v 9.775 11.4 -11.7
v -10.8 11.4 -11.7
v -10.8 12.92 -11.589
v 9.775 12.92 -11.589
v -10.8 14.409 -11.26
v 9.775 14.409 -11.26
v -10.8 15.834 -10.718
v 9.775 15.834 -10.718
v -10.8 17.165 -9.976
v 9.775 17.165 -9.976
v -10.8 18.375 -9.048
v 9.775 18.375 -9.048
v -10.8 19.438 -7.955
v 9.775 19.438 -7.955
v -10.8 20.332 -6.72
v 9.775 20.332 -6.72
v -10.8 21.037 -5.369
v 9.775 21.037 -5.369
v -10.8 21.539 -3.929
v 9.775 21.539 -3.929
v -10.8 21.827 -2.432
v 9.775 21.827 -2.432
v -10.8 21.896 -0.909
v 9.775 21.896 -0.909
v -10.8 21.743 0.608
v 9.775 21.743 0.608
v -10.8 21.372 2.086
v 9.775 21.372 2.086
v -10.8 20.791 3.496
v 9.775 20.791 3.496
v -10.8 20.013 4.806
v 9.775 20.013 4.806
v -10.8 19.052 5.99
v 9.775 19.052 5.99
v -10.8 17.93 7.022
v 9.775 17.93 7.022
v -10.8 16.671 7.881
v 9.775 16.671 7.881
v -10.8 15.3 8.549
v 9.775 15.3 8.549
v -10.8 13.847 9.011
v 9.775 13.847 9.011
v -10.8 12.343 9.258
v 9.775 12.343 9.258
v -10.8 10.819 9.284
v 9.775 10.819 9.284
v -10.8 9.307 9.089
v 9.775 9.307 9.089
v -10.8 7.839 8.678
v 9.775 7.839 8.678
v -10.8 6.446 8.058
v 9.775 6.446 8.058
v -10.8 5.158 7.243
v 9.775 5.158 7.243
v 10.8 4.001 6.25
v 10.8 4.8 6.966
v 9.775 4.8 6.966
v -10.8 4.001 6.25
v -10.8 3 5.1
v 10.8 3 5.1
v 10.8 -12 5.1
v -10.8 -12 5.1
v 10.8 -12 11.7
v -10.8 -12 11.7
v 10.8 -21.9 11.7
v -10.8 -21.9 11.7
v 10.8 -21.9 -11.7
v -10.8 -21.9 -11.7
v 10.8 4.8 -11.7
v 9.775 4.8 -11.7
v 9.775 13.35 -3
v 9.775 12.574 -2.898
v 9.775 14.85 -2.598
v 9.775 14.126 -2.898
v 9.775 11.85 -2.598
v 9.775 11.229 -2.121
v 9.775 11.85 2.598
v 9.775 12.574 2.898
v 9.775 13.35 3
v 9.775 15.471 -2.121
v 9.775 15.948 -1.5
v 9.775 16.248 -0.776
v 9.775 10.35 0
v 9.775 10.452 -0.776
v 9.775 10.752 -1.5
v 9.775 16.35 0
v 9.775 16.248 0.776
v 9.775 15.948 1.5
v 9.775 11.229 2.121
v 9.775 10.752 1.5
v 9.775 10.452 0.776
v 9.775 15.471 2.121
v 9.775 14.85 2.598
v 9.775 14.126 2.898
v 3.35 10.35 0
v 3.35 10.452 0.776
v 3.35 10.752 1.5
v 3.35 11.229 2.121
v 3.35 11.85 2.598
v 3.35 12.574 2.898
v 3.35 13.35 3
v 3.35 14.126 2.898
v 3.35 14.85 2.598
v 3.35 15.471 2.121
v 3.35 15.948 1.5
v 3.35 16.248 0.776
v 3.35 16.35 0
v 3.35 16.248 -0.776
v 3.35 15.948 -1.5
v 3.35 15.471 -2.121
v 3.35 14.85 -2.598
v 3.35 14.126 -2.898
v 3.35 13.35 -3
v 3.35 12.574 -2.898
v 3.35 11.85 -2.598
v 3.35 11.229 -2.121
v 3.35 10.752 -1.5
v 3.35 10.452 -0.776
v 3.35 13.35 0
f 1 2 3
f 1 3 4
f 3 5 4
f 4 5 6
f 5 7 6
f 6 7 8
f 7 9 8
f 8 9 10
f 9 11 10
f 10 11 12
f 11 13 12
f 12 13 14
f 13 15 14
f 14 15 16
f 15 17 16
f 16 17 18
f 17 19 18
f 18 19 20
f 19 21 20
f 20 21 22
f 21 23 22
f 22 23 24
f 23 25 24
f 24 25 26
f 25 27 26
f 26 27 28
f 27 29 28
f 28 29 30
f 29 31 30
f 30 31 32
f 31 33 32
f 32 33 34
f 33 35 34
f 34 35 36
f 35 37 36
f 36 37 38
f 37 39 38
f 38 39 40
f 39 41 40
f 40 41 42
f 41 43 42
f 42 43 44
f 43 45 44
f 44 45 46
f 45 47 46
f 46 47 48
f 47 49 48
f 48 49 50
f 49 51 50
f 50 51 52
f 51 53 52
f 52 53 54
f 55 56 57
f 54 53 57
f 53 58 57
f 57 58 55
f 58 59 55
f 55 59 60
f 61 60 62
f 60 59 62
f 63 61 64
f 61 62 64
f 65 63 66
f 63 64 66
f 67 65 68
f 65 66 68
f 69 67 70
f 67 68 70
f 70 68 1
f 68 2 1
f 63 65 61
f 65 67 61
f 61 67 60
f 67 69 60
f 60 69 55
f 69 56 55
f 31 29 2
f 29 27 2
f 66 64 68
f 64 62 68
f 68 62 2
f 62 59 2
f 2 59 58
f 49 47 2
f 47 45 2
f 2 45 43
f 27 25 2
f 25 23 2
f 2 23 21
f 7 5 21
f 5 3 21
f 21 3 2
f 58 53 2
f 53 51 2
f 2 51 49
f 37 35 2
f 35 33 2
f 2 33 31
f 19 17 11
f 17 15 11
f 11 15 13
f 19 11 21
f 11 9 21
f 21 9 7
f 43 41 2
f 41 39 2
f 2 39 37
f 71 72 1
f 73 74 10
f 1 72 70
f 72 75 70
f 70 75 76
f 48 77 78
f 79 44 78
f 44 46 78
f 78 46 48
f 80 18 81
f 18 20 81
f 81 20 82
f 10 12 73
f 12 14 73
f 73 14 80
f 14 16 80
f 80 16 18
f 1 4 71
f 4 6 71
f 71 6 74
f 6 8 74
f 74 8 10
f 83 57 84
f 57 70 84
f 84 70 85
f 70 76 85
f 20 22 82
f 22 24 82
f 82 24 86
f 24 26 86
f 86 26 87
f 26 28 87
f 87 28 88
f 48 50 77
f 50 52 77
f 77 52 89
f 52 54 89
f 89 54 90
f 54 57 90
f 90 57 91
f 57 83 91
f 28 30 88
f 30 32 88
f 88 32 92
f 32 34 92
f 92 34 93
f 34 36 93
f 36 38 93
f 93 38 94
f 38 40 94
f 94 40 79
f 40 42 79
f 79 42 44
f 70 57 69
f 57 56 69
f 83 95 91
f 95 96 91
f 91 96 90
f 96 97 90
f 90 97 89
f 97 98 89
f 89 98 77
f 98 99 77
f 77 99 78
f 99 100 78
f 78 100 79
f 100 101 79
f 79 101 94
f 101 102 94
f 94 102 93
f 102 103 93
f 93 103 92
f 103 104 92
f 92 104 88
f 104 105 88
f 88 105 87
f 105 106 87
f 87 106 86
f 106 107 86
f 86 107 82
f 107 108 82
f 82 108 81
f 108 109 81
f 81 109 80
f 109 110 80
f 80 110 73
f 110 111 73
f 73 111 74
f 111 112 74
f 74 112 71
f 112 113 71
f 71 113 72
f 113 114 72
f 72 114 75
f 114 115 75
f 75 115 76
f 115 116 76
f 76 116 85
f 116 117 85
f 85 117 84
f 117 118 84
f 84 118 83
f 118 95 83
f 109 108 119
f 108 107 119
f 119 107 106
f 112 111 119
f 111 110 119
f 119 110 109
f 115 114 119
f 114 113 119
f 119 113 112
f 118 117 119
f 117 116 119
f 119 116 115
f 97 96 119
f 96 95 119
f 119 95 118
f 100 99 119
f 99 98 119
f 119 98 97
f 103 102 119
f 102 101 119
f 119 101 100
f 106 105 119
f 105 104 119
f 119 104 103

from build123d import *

# Parameters (mm, degrees)
SALIENTE_EXTRUIR1_DEPTH    = 10.8
CORTAR_EXTRUIR1_DEPTH      = 28.076558127
CORTAR_EXTRUIR1_DEPTH_BACK = 28.076558127
CROQUIS4_W                 = 1.025
CROQUIS4_H                 = 17.1
CORTAR_EXTRUIR2_DEPTH      = 33.246404838
CORTAR_EXTRUIR2_DEPTH_BACK = 6.425
CROQUIS5_R                 = 3


with BuildPart() as part:
    # Croquis3 → Saliente-Extruir1 (new, symmetric)
    with BuildSketch(Plane(origin=(0, 0, 0), x_dir=(0, 0, -1), z_dir=(1, 0, 0))):
        with BuildLine():
            Line((11.7, 11.4), (11.7, -21.9))
            Line((11.7, -21.9), (-11.7, -21.9))
            Line((-11.7, -21.9), (-11.7, -12))
            Line((-11.7, -12), (-5.1, -12))
            Line((-5.1, -12), (-5.1, 3))
            ThreePointArc((-5.1, 3), (-3.495742753, 20.791485505), (11.7, 11.4))
        make_face()
    extrude(amount=SALIENTE_EXTRUIR1_DEPTH, both=True)

    # Croquis4 → Cortar-Extruir1 (cut, two sides: drawn at the far end of the back side and taken through both)
    with BuildSketch(Plane.XY.offset(-CORTAR_EXTRUIR1_DEPTH_BACK)):
        with Locations((10.2875, 13.35)):
            Rectangle(CROQUIS4_W, CROQUIS4_H)
    extrude(amount=CORTAR_EXTRUIR1_DEPTH + CORTAR_EXTRUIR1_DEPTH_BACK, mode=Mode.SUBTRACT)

    # Croquis5 → Cortar-Extruir2 (cut, two sides: drawn at the far end of the back side and taken through both)
    with BuildSketch(Plane(origin=(9.775, 0, 0), x_dir=(0, 0, -1), z_dir=(1, 0, 0)).offset(-CORTAR_EXTRUIR2_DEPTH_BACK)):
        with Locations(Location((0, 13.35, 0), (0, 0, 270))):
            Circle(CROQUIS5_R)
    extrude(amount=CORTAR_EXTRUIR2_DEPTH + CORTAR_EXTRUIR2_DEPTH_BACK, mode=Mode.SUBTRACT)


solid = part.part
